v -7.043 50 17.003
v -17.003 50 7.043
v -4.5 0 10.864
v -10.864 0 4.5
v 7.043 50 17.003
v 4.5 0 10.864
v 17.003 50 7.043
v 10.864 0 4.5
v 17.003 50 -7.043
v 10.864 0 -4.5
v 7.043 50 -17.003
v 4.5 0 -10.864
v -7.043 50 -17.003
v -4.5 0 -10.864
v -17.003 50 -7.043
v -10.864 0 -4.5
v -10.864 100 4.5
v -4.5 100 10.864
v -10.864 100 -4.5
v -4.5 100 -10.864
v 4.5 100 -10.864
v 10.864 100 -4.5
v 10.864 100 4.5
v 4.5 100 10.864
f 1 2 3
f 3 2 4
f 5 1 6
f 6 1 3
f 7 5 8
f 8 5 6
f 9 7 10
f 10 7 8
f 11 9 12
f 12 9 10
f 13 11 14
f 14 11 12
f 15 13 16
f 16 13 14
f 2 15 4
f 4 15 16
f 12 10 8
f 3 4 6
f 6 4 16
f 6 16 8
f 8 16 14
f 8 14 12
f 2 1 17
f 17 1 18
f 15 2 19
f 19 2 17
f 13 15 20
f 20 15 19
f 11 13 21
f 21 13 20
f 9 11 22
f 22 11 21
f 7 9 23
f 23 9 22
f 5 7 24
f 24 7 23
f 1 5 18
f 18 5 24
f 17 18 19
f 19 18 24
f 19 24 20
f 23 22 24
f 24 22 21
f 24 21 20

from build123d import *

# Parameters (mm, degrees)
BOSS_EXTRUDE1_DEPTH = 50
BOSS_EXTRUDE1_DRAFT = -7
MIRROR1_DEPTH       = 50
MIRROR1_DRAFT       = 7


# Read off the part's stored shape, not the designer's step: Mirror1
with BuildPart() as part:
    # Sketch2 → Boss-Extrude1 (with draft: the straight prism first)
    with BuildSketch(Plane(origin=(0, 0, 0), x_dir=(1, 0, 0), z_dir=(0, 1, 0))):
        Polygon((-10.863961031, 4.5), (-10.863961031, -4.5), (-4.5, -10.863961031), (4.5, -10.863961031), (10.863961031, -4.5), (10.863961031, 4.5), (4.5, 10.863961031), (-4.5, 10.863961031), align=None)
    extrude(amount=BOSS_EXTRUDE1_DEPTH)
    # Boss-Extrude1: the draft: its side faces are tilted about the plane it starts from
    boss_extrude1_sides = [part.faces().sort_by_distance(p)[0] for p in [
        (-10.863961031, 25, 0),
        (-7.681980515, 25, 7.681980515),
        (0, 25, 10.863961031),
        (7.681980515, 25, 7.681980515),
        (10.863961031, 25, 0),
        (7.681980515, 25, -7.681980515),
        (0, 25, -10.863961031),
        (-7.681980515, 25, -7.681980515),
    ]]
    draft(boss_extrude1_sides, Plane(origin=(0, 0, 0), x_dir=(1, 0, 0), z_dir=(0, 1, 0)), BOSS_EXTRUDE1_DRAFT)


with BuildPart() as mirror1_tool:
    # Mirror1 outline → Mirror1 (with draft: the straight prism first)
    with BuildSketch(Plane(origin=(0, 100, 0), x_dir=(1, 0, 0), z_dir=(0, 1, 0))):
        Polygon((-10.863961031, -4.5), (-4.5, -10.863961031), (4.5, -10.863961031), (10.863961031, -4.5), (10.863961031, 4.5), (4.5, 10.863961031), (-4.5, 10.863961031), (-10.863961031, 4.5), align=None)
    extrude(amount=-MIRROR1_DEPTH)
    # Mirror1: the draft: its side faces are tilted about the plane it starts from
    mirror1_sides = [mirror1_tool.faces().sort_by_distance(p)[0] for p in [
        (-7.681980515, 75, 7.681980516),
        (0, 75, 10.863961031),
        (7.681980516, 75, 7.681980515),
        (10.863961031, 75, 0),
        (7.681980515, 75, -7.681980516),
        (0, 75, -10.863961031),
        (-7.681980516, 75, -7.681980515),
        (-10.863961031, 75, 0),
    ]]
    draft(mirror1_sides, Plane(origin=(0, 100, 0), x_dir=(1, 0, 0), z_dir=(0, 1, 0)), MIRROR1_DRAFT)


with BuildPart() as part_1:
    add(part.part)

    # Mirror1: add mirror1_tool
    add(mirror1_tool.part)


solid = part_1.part
